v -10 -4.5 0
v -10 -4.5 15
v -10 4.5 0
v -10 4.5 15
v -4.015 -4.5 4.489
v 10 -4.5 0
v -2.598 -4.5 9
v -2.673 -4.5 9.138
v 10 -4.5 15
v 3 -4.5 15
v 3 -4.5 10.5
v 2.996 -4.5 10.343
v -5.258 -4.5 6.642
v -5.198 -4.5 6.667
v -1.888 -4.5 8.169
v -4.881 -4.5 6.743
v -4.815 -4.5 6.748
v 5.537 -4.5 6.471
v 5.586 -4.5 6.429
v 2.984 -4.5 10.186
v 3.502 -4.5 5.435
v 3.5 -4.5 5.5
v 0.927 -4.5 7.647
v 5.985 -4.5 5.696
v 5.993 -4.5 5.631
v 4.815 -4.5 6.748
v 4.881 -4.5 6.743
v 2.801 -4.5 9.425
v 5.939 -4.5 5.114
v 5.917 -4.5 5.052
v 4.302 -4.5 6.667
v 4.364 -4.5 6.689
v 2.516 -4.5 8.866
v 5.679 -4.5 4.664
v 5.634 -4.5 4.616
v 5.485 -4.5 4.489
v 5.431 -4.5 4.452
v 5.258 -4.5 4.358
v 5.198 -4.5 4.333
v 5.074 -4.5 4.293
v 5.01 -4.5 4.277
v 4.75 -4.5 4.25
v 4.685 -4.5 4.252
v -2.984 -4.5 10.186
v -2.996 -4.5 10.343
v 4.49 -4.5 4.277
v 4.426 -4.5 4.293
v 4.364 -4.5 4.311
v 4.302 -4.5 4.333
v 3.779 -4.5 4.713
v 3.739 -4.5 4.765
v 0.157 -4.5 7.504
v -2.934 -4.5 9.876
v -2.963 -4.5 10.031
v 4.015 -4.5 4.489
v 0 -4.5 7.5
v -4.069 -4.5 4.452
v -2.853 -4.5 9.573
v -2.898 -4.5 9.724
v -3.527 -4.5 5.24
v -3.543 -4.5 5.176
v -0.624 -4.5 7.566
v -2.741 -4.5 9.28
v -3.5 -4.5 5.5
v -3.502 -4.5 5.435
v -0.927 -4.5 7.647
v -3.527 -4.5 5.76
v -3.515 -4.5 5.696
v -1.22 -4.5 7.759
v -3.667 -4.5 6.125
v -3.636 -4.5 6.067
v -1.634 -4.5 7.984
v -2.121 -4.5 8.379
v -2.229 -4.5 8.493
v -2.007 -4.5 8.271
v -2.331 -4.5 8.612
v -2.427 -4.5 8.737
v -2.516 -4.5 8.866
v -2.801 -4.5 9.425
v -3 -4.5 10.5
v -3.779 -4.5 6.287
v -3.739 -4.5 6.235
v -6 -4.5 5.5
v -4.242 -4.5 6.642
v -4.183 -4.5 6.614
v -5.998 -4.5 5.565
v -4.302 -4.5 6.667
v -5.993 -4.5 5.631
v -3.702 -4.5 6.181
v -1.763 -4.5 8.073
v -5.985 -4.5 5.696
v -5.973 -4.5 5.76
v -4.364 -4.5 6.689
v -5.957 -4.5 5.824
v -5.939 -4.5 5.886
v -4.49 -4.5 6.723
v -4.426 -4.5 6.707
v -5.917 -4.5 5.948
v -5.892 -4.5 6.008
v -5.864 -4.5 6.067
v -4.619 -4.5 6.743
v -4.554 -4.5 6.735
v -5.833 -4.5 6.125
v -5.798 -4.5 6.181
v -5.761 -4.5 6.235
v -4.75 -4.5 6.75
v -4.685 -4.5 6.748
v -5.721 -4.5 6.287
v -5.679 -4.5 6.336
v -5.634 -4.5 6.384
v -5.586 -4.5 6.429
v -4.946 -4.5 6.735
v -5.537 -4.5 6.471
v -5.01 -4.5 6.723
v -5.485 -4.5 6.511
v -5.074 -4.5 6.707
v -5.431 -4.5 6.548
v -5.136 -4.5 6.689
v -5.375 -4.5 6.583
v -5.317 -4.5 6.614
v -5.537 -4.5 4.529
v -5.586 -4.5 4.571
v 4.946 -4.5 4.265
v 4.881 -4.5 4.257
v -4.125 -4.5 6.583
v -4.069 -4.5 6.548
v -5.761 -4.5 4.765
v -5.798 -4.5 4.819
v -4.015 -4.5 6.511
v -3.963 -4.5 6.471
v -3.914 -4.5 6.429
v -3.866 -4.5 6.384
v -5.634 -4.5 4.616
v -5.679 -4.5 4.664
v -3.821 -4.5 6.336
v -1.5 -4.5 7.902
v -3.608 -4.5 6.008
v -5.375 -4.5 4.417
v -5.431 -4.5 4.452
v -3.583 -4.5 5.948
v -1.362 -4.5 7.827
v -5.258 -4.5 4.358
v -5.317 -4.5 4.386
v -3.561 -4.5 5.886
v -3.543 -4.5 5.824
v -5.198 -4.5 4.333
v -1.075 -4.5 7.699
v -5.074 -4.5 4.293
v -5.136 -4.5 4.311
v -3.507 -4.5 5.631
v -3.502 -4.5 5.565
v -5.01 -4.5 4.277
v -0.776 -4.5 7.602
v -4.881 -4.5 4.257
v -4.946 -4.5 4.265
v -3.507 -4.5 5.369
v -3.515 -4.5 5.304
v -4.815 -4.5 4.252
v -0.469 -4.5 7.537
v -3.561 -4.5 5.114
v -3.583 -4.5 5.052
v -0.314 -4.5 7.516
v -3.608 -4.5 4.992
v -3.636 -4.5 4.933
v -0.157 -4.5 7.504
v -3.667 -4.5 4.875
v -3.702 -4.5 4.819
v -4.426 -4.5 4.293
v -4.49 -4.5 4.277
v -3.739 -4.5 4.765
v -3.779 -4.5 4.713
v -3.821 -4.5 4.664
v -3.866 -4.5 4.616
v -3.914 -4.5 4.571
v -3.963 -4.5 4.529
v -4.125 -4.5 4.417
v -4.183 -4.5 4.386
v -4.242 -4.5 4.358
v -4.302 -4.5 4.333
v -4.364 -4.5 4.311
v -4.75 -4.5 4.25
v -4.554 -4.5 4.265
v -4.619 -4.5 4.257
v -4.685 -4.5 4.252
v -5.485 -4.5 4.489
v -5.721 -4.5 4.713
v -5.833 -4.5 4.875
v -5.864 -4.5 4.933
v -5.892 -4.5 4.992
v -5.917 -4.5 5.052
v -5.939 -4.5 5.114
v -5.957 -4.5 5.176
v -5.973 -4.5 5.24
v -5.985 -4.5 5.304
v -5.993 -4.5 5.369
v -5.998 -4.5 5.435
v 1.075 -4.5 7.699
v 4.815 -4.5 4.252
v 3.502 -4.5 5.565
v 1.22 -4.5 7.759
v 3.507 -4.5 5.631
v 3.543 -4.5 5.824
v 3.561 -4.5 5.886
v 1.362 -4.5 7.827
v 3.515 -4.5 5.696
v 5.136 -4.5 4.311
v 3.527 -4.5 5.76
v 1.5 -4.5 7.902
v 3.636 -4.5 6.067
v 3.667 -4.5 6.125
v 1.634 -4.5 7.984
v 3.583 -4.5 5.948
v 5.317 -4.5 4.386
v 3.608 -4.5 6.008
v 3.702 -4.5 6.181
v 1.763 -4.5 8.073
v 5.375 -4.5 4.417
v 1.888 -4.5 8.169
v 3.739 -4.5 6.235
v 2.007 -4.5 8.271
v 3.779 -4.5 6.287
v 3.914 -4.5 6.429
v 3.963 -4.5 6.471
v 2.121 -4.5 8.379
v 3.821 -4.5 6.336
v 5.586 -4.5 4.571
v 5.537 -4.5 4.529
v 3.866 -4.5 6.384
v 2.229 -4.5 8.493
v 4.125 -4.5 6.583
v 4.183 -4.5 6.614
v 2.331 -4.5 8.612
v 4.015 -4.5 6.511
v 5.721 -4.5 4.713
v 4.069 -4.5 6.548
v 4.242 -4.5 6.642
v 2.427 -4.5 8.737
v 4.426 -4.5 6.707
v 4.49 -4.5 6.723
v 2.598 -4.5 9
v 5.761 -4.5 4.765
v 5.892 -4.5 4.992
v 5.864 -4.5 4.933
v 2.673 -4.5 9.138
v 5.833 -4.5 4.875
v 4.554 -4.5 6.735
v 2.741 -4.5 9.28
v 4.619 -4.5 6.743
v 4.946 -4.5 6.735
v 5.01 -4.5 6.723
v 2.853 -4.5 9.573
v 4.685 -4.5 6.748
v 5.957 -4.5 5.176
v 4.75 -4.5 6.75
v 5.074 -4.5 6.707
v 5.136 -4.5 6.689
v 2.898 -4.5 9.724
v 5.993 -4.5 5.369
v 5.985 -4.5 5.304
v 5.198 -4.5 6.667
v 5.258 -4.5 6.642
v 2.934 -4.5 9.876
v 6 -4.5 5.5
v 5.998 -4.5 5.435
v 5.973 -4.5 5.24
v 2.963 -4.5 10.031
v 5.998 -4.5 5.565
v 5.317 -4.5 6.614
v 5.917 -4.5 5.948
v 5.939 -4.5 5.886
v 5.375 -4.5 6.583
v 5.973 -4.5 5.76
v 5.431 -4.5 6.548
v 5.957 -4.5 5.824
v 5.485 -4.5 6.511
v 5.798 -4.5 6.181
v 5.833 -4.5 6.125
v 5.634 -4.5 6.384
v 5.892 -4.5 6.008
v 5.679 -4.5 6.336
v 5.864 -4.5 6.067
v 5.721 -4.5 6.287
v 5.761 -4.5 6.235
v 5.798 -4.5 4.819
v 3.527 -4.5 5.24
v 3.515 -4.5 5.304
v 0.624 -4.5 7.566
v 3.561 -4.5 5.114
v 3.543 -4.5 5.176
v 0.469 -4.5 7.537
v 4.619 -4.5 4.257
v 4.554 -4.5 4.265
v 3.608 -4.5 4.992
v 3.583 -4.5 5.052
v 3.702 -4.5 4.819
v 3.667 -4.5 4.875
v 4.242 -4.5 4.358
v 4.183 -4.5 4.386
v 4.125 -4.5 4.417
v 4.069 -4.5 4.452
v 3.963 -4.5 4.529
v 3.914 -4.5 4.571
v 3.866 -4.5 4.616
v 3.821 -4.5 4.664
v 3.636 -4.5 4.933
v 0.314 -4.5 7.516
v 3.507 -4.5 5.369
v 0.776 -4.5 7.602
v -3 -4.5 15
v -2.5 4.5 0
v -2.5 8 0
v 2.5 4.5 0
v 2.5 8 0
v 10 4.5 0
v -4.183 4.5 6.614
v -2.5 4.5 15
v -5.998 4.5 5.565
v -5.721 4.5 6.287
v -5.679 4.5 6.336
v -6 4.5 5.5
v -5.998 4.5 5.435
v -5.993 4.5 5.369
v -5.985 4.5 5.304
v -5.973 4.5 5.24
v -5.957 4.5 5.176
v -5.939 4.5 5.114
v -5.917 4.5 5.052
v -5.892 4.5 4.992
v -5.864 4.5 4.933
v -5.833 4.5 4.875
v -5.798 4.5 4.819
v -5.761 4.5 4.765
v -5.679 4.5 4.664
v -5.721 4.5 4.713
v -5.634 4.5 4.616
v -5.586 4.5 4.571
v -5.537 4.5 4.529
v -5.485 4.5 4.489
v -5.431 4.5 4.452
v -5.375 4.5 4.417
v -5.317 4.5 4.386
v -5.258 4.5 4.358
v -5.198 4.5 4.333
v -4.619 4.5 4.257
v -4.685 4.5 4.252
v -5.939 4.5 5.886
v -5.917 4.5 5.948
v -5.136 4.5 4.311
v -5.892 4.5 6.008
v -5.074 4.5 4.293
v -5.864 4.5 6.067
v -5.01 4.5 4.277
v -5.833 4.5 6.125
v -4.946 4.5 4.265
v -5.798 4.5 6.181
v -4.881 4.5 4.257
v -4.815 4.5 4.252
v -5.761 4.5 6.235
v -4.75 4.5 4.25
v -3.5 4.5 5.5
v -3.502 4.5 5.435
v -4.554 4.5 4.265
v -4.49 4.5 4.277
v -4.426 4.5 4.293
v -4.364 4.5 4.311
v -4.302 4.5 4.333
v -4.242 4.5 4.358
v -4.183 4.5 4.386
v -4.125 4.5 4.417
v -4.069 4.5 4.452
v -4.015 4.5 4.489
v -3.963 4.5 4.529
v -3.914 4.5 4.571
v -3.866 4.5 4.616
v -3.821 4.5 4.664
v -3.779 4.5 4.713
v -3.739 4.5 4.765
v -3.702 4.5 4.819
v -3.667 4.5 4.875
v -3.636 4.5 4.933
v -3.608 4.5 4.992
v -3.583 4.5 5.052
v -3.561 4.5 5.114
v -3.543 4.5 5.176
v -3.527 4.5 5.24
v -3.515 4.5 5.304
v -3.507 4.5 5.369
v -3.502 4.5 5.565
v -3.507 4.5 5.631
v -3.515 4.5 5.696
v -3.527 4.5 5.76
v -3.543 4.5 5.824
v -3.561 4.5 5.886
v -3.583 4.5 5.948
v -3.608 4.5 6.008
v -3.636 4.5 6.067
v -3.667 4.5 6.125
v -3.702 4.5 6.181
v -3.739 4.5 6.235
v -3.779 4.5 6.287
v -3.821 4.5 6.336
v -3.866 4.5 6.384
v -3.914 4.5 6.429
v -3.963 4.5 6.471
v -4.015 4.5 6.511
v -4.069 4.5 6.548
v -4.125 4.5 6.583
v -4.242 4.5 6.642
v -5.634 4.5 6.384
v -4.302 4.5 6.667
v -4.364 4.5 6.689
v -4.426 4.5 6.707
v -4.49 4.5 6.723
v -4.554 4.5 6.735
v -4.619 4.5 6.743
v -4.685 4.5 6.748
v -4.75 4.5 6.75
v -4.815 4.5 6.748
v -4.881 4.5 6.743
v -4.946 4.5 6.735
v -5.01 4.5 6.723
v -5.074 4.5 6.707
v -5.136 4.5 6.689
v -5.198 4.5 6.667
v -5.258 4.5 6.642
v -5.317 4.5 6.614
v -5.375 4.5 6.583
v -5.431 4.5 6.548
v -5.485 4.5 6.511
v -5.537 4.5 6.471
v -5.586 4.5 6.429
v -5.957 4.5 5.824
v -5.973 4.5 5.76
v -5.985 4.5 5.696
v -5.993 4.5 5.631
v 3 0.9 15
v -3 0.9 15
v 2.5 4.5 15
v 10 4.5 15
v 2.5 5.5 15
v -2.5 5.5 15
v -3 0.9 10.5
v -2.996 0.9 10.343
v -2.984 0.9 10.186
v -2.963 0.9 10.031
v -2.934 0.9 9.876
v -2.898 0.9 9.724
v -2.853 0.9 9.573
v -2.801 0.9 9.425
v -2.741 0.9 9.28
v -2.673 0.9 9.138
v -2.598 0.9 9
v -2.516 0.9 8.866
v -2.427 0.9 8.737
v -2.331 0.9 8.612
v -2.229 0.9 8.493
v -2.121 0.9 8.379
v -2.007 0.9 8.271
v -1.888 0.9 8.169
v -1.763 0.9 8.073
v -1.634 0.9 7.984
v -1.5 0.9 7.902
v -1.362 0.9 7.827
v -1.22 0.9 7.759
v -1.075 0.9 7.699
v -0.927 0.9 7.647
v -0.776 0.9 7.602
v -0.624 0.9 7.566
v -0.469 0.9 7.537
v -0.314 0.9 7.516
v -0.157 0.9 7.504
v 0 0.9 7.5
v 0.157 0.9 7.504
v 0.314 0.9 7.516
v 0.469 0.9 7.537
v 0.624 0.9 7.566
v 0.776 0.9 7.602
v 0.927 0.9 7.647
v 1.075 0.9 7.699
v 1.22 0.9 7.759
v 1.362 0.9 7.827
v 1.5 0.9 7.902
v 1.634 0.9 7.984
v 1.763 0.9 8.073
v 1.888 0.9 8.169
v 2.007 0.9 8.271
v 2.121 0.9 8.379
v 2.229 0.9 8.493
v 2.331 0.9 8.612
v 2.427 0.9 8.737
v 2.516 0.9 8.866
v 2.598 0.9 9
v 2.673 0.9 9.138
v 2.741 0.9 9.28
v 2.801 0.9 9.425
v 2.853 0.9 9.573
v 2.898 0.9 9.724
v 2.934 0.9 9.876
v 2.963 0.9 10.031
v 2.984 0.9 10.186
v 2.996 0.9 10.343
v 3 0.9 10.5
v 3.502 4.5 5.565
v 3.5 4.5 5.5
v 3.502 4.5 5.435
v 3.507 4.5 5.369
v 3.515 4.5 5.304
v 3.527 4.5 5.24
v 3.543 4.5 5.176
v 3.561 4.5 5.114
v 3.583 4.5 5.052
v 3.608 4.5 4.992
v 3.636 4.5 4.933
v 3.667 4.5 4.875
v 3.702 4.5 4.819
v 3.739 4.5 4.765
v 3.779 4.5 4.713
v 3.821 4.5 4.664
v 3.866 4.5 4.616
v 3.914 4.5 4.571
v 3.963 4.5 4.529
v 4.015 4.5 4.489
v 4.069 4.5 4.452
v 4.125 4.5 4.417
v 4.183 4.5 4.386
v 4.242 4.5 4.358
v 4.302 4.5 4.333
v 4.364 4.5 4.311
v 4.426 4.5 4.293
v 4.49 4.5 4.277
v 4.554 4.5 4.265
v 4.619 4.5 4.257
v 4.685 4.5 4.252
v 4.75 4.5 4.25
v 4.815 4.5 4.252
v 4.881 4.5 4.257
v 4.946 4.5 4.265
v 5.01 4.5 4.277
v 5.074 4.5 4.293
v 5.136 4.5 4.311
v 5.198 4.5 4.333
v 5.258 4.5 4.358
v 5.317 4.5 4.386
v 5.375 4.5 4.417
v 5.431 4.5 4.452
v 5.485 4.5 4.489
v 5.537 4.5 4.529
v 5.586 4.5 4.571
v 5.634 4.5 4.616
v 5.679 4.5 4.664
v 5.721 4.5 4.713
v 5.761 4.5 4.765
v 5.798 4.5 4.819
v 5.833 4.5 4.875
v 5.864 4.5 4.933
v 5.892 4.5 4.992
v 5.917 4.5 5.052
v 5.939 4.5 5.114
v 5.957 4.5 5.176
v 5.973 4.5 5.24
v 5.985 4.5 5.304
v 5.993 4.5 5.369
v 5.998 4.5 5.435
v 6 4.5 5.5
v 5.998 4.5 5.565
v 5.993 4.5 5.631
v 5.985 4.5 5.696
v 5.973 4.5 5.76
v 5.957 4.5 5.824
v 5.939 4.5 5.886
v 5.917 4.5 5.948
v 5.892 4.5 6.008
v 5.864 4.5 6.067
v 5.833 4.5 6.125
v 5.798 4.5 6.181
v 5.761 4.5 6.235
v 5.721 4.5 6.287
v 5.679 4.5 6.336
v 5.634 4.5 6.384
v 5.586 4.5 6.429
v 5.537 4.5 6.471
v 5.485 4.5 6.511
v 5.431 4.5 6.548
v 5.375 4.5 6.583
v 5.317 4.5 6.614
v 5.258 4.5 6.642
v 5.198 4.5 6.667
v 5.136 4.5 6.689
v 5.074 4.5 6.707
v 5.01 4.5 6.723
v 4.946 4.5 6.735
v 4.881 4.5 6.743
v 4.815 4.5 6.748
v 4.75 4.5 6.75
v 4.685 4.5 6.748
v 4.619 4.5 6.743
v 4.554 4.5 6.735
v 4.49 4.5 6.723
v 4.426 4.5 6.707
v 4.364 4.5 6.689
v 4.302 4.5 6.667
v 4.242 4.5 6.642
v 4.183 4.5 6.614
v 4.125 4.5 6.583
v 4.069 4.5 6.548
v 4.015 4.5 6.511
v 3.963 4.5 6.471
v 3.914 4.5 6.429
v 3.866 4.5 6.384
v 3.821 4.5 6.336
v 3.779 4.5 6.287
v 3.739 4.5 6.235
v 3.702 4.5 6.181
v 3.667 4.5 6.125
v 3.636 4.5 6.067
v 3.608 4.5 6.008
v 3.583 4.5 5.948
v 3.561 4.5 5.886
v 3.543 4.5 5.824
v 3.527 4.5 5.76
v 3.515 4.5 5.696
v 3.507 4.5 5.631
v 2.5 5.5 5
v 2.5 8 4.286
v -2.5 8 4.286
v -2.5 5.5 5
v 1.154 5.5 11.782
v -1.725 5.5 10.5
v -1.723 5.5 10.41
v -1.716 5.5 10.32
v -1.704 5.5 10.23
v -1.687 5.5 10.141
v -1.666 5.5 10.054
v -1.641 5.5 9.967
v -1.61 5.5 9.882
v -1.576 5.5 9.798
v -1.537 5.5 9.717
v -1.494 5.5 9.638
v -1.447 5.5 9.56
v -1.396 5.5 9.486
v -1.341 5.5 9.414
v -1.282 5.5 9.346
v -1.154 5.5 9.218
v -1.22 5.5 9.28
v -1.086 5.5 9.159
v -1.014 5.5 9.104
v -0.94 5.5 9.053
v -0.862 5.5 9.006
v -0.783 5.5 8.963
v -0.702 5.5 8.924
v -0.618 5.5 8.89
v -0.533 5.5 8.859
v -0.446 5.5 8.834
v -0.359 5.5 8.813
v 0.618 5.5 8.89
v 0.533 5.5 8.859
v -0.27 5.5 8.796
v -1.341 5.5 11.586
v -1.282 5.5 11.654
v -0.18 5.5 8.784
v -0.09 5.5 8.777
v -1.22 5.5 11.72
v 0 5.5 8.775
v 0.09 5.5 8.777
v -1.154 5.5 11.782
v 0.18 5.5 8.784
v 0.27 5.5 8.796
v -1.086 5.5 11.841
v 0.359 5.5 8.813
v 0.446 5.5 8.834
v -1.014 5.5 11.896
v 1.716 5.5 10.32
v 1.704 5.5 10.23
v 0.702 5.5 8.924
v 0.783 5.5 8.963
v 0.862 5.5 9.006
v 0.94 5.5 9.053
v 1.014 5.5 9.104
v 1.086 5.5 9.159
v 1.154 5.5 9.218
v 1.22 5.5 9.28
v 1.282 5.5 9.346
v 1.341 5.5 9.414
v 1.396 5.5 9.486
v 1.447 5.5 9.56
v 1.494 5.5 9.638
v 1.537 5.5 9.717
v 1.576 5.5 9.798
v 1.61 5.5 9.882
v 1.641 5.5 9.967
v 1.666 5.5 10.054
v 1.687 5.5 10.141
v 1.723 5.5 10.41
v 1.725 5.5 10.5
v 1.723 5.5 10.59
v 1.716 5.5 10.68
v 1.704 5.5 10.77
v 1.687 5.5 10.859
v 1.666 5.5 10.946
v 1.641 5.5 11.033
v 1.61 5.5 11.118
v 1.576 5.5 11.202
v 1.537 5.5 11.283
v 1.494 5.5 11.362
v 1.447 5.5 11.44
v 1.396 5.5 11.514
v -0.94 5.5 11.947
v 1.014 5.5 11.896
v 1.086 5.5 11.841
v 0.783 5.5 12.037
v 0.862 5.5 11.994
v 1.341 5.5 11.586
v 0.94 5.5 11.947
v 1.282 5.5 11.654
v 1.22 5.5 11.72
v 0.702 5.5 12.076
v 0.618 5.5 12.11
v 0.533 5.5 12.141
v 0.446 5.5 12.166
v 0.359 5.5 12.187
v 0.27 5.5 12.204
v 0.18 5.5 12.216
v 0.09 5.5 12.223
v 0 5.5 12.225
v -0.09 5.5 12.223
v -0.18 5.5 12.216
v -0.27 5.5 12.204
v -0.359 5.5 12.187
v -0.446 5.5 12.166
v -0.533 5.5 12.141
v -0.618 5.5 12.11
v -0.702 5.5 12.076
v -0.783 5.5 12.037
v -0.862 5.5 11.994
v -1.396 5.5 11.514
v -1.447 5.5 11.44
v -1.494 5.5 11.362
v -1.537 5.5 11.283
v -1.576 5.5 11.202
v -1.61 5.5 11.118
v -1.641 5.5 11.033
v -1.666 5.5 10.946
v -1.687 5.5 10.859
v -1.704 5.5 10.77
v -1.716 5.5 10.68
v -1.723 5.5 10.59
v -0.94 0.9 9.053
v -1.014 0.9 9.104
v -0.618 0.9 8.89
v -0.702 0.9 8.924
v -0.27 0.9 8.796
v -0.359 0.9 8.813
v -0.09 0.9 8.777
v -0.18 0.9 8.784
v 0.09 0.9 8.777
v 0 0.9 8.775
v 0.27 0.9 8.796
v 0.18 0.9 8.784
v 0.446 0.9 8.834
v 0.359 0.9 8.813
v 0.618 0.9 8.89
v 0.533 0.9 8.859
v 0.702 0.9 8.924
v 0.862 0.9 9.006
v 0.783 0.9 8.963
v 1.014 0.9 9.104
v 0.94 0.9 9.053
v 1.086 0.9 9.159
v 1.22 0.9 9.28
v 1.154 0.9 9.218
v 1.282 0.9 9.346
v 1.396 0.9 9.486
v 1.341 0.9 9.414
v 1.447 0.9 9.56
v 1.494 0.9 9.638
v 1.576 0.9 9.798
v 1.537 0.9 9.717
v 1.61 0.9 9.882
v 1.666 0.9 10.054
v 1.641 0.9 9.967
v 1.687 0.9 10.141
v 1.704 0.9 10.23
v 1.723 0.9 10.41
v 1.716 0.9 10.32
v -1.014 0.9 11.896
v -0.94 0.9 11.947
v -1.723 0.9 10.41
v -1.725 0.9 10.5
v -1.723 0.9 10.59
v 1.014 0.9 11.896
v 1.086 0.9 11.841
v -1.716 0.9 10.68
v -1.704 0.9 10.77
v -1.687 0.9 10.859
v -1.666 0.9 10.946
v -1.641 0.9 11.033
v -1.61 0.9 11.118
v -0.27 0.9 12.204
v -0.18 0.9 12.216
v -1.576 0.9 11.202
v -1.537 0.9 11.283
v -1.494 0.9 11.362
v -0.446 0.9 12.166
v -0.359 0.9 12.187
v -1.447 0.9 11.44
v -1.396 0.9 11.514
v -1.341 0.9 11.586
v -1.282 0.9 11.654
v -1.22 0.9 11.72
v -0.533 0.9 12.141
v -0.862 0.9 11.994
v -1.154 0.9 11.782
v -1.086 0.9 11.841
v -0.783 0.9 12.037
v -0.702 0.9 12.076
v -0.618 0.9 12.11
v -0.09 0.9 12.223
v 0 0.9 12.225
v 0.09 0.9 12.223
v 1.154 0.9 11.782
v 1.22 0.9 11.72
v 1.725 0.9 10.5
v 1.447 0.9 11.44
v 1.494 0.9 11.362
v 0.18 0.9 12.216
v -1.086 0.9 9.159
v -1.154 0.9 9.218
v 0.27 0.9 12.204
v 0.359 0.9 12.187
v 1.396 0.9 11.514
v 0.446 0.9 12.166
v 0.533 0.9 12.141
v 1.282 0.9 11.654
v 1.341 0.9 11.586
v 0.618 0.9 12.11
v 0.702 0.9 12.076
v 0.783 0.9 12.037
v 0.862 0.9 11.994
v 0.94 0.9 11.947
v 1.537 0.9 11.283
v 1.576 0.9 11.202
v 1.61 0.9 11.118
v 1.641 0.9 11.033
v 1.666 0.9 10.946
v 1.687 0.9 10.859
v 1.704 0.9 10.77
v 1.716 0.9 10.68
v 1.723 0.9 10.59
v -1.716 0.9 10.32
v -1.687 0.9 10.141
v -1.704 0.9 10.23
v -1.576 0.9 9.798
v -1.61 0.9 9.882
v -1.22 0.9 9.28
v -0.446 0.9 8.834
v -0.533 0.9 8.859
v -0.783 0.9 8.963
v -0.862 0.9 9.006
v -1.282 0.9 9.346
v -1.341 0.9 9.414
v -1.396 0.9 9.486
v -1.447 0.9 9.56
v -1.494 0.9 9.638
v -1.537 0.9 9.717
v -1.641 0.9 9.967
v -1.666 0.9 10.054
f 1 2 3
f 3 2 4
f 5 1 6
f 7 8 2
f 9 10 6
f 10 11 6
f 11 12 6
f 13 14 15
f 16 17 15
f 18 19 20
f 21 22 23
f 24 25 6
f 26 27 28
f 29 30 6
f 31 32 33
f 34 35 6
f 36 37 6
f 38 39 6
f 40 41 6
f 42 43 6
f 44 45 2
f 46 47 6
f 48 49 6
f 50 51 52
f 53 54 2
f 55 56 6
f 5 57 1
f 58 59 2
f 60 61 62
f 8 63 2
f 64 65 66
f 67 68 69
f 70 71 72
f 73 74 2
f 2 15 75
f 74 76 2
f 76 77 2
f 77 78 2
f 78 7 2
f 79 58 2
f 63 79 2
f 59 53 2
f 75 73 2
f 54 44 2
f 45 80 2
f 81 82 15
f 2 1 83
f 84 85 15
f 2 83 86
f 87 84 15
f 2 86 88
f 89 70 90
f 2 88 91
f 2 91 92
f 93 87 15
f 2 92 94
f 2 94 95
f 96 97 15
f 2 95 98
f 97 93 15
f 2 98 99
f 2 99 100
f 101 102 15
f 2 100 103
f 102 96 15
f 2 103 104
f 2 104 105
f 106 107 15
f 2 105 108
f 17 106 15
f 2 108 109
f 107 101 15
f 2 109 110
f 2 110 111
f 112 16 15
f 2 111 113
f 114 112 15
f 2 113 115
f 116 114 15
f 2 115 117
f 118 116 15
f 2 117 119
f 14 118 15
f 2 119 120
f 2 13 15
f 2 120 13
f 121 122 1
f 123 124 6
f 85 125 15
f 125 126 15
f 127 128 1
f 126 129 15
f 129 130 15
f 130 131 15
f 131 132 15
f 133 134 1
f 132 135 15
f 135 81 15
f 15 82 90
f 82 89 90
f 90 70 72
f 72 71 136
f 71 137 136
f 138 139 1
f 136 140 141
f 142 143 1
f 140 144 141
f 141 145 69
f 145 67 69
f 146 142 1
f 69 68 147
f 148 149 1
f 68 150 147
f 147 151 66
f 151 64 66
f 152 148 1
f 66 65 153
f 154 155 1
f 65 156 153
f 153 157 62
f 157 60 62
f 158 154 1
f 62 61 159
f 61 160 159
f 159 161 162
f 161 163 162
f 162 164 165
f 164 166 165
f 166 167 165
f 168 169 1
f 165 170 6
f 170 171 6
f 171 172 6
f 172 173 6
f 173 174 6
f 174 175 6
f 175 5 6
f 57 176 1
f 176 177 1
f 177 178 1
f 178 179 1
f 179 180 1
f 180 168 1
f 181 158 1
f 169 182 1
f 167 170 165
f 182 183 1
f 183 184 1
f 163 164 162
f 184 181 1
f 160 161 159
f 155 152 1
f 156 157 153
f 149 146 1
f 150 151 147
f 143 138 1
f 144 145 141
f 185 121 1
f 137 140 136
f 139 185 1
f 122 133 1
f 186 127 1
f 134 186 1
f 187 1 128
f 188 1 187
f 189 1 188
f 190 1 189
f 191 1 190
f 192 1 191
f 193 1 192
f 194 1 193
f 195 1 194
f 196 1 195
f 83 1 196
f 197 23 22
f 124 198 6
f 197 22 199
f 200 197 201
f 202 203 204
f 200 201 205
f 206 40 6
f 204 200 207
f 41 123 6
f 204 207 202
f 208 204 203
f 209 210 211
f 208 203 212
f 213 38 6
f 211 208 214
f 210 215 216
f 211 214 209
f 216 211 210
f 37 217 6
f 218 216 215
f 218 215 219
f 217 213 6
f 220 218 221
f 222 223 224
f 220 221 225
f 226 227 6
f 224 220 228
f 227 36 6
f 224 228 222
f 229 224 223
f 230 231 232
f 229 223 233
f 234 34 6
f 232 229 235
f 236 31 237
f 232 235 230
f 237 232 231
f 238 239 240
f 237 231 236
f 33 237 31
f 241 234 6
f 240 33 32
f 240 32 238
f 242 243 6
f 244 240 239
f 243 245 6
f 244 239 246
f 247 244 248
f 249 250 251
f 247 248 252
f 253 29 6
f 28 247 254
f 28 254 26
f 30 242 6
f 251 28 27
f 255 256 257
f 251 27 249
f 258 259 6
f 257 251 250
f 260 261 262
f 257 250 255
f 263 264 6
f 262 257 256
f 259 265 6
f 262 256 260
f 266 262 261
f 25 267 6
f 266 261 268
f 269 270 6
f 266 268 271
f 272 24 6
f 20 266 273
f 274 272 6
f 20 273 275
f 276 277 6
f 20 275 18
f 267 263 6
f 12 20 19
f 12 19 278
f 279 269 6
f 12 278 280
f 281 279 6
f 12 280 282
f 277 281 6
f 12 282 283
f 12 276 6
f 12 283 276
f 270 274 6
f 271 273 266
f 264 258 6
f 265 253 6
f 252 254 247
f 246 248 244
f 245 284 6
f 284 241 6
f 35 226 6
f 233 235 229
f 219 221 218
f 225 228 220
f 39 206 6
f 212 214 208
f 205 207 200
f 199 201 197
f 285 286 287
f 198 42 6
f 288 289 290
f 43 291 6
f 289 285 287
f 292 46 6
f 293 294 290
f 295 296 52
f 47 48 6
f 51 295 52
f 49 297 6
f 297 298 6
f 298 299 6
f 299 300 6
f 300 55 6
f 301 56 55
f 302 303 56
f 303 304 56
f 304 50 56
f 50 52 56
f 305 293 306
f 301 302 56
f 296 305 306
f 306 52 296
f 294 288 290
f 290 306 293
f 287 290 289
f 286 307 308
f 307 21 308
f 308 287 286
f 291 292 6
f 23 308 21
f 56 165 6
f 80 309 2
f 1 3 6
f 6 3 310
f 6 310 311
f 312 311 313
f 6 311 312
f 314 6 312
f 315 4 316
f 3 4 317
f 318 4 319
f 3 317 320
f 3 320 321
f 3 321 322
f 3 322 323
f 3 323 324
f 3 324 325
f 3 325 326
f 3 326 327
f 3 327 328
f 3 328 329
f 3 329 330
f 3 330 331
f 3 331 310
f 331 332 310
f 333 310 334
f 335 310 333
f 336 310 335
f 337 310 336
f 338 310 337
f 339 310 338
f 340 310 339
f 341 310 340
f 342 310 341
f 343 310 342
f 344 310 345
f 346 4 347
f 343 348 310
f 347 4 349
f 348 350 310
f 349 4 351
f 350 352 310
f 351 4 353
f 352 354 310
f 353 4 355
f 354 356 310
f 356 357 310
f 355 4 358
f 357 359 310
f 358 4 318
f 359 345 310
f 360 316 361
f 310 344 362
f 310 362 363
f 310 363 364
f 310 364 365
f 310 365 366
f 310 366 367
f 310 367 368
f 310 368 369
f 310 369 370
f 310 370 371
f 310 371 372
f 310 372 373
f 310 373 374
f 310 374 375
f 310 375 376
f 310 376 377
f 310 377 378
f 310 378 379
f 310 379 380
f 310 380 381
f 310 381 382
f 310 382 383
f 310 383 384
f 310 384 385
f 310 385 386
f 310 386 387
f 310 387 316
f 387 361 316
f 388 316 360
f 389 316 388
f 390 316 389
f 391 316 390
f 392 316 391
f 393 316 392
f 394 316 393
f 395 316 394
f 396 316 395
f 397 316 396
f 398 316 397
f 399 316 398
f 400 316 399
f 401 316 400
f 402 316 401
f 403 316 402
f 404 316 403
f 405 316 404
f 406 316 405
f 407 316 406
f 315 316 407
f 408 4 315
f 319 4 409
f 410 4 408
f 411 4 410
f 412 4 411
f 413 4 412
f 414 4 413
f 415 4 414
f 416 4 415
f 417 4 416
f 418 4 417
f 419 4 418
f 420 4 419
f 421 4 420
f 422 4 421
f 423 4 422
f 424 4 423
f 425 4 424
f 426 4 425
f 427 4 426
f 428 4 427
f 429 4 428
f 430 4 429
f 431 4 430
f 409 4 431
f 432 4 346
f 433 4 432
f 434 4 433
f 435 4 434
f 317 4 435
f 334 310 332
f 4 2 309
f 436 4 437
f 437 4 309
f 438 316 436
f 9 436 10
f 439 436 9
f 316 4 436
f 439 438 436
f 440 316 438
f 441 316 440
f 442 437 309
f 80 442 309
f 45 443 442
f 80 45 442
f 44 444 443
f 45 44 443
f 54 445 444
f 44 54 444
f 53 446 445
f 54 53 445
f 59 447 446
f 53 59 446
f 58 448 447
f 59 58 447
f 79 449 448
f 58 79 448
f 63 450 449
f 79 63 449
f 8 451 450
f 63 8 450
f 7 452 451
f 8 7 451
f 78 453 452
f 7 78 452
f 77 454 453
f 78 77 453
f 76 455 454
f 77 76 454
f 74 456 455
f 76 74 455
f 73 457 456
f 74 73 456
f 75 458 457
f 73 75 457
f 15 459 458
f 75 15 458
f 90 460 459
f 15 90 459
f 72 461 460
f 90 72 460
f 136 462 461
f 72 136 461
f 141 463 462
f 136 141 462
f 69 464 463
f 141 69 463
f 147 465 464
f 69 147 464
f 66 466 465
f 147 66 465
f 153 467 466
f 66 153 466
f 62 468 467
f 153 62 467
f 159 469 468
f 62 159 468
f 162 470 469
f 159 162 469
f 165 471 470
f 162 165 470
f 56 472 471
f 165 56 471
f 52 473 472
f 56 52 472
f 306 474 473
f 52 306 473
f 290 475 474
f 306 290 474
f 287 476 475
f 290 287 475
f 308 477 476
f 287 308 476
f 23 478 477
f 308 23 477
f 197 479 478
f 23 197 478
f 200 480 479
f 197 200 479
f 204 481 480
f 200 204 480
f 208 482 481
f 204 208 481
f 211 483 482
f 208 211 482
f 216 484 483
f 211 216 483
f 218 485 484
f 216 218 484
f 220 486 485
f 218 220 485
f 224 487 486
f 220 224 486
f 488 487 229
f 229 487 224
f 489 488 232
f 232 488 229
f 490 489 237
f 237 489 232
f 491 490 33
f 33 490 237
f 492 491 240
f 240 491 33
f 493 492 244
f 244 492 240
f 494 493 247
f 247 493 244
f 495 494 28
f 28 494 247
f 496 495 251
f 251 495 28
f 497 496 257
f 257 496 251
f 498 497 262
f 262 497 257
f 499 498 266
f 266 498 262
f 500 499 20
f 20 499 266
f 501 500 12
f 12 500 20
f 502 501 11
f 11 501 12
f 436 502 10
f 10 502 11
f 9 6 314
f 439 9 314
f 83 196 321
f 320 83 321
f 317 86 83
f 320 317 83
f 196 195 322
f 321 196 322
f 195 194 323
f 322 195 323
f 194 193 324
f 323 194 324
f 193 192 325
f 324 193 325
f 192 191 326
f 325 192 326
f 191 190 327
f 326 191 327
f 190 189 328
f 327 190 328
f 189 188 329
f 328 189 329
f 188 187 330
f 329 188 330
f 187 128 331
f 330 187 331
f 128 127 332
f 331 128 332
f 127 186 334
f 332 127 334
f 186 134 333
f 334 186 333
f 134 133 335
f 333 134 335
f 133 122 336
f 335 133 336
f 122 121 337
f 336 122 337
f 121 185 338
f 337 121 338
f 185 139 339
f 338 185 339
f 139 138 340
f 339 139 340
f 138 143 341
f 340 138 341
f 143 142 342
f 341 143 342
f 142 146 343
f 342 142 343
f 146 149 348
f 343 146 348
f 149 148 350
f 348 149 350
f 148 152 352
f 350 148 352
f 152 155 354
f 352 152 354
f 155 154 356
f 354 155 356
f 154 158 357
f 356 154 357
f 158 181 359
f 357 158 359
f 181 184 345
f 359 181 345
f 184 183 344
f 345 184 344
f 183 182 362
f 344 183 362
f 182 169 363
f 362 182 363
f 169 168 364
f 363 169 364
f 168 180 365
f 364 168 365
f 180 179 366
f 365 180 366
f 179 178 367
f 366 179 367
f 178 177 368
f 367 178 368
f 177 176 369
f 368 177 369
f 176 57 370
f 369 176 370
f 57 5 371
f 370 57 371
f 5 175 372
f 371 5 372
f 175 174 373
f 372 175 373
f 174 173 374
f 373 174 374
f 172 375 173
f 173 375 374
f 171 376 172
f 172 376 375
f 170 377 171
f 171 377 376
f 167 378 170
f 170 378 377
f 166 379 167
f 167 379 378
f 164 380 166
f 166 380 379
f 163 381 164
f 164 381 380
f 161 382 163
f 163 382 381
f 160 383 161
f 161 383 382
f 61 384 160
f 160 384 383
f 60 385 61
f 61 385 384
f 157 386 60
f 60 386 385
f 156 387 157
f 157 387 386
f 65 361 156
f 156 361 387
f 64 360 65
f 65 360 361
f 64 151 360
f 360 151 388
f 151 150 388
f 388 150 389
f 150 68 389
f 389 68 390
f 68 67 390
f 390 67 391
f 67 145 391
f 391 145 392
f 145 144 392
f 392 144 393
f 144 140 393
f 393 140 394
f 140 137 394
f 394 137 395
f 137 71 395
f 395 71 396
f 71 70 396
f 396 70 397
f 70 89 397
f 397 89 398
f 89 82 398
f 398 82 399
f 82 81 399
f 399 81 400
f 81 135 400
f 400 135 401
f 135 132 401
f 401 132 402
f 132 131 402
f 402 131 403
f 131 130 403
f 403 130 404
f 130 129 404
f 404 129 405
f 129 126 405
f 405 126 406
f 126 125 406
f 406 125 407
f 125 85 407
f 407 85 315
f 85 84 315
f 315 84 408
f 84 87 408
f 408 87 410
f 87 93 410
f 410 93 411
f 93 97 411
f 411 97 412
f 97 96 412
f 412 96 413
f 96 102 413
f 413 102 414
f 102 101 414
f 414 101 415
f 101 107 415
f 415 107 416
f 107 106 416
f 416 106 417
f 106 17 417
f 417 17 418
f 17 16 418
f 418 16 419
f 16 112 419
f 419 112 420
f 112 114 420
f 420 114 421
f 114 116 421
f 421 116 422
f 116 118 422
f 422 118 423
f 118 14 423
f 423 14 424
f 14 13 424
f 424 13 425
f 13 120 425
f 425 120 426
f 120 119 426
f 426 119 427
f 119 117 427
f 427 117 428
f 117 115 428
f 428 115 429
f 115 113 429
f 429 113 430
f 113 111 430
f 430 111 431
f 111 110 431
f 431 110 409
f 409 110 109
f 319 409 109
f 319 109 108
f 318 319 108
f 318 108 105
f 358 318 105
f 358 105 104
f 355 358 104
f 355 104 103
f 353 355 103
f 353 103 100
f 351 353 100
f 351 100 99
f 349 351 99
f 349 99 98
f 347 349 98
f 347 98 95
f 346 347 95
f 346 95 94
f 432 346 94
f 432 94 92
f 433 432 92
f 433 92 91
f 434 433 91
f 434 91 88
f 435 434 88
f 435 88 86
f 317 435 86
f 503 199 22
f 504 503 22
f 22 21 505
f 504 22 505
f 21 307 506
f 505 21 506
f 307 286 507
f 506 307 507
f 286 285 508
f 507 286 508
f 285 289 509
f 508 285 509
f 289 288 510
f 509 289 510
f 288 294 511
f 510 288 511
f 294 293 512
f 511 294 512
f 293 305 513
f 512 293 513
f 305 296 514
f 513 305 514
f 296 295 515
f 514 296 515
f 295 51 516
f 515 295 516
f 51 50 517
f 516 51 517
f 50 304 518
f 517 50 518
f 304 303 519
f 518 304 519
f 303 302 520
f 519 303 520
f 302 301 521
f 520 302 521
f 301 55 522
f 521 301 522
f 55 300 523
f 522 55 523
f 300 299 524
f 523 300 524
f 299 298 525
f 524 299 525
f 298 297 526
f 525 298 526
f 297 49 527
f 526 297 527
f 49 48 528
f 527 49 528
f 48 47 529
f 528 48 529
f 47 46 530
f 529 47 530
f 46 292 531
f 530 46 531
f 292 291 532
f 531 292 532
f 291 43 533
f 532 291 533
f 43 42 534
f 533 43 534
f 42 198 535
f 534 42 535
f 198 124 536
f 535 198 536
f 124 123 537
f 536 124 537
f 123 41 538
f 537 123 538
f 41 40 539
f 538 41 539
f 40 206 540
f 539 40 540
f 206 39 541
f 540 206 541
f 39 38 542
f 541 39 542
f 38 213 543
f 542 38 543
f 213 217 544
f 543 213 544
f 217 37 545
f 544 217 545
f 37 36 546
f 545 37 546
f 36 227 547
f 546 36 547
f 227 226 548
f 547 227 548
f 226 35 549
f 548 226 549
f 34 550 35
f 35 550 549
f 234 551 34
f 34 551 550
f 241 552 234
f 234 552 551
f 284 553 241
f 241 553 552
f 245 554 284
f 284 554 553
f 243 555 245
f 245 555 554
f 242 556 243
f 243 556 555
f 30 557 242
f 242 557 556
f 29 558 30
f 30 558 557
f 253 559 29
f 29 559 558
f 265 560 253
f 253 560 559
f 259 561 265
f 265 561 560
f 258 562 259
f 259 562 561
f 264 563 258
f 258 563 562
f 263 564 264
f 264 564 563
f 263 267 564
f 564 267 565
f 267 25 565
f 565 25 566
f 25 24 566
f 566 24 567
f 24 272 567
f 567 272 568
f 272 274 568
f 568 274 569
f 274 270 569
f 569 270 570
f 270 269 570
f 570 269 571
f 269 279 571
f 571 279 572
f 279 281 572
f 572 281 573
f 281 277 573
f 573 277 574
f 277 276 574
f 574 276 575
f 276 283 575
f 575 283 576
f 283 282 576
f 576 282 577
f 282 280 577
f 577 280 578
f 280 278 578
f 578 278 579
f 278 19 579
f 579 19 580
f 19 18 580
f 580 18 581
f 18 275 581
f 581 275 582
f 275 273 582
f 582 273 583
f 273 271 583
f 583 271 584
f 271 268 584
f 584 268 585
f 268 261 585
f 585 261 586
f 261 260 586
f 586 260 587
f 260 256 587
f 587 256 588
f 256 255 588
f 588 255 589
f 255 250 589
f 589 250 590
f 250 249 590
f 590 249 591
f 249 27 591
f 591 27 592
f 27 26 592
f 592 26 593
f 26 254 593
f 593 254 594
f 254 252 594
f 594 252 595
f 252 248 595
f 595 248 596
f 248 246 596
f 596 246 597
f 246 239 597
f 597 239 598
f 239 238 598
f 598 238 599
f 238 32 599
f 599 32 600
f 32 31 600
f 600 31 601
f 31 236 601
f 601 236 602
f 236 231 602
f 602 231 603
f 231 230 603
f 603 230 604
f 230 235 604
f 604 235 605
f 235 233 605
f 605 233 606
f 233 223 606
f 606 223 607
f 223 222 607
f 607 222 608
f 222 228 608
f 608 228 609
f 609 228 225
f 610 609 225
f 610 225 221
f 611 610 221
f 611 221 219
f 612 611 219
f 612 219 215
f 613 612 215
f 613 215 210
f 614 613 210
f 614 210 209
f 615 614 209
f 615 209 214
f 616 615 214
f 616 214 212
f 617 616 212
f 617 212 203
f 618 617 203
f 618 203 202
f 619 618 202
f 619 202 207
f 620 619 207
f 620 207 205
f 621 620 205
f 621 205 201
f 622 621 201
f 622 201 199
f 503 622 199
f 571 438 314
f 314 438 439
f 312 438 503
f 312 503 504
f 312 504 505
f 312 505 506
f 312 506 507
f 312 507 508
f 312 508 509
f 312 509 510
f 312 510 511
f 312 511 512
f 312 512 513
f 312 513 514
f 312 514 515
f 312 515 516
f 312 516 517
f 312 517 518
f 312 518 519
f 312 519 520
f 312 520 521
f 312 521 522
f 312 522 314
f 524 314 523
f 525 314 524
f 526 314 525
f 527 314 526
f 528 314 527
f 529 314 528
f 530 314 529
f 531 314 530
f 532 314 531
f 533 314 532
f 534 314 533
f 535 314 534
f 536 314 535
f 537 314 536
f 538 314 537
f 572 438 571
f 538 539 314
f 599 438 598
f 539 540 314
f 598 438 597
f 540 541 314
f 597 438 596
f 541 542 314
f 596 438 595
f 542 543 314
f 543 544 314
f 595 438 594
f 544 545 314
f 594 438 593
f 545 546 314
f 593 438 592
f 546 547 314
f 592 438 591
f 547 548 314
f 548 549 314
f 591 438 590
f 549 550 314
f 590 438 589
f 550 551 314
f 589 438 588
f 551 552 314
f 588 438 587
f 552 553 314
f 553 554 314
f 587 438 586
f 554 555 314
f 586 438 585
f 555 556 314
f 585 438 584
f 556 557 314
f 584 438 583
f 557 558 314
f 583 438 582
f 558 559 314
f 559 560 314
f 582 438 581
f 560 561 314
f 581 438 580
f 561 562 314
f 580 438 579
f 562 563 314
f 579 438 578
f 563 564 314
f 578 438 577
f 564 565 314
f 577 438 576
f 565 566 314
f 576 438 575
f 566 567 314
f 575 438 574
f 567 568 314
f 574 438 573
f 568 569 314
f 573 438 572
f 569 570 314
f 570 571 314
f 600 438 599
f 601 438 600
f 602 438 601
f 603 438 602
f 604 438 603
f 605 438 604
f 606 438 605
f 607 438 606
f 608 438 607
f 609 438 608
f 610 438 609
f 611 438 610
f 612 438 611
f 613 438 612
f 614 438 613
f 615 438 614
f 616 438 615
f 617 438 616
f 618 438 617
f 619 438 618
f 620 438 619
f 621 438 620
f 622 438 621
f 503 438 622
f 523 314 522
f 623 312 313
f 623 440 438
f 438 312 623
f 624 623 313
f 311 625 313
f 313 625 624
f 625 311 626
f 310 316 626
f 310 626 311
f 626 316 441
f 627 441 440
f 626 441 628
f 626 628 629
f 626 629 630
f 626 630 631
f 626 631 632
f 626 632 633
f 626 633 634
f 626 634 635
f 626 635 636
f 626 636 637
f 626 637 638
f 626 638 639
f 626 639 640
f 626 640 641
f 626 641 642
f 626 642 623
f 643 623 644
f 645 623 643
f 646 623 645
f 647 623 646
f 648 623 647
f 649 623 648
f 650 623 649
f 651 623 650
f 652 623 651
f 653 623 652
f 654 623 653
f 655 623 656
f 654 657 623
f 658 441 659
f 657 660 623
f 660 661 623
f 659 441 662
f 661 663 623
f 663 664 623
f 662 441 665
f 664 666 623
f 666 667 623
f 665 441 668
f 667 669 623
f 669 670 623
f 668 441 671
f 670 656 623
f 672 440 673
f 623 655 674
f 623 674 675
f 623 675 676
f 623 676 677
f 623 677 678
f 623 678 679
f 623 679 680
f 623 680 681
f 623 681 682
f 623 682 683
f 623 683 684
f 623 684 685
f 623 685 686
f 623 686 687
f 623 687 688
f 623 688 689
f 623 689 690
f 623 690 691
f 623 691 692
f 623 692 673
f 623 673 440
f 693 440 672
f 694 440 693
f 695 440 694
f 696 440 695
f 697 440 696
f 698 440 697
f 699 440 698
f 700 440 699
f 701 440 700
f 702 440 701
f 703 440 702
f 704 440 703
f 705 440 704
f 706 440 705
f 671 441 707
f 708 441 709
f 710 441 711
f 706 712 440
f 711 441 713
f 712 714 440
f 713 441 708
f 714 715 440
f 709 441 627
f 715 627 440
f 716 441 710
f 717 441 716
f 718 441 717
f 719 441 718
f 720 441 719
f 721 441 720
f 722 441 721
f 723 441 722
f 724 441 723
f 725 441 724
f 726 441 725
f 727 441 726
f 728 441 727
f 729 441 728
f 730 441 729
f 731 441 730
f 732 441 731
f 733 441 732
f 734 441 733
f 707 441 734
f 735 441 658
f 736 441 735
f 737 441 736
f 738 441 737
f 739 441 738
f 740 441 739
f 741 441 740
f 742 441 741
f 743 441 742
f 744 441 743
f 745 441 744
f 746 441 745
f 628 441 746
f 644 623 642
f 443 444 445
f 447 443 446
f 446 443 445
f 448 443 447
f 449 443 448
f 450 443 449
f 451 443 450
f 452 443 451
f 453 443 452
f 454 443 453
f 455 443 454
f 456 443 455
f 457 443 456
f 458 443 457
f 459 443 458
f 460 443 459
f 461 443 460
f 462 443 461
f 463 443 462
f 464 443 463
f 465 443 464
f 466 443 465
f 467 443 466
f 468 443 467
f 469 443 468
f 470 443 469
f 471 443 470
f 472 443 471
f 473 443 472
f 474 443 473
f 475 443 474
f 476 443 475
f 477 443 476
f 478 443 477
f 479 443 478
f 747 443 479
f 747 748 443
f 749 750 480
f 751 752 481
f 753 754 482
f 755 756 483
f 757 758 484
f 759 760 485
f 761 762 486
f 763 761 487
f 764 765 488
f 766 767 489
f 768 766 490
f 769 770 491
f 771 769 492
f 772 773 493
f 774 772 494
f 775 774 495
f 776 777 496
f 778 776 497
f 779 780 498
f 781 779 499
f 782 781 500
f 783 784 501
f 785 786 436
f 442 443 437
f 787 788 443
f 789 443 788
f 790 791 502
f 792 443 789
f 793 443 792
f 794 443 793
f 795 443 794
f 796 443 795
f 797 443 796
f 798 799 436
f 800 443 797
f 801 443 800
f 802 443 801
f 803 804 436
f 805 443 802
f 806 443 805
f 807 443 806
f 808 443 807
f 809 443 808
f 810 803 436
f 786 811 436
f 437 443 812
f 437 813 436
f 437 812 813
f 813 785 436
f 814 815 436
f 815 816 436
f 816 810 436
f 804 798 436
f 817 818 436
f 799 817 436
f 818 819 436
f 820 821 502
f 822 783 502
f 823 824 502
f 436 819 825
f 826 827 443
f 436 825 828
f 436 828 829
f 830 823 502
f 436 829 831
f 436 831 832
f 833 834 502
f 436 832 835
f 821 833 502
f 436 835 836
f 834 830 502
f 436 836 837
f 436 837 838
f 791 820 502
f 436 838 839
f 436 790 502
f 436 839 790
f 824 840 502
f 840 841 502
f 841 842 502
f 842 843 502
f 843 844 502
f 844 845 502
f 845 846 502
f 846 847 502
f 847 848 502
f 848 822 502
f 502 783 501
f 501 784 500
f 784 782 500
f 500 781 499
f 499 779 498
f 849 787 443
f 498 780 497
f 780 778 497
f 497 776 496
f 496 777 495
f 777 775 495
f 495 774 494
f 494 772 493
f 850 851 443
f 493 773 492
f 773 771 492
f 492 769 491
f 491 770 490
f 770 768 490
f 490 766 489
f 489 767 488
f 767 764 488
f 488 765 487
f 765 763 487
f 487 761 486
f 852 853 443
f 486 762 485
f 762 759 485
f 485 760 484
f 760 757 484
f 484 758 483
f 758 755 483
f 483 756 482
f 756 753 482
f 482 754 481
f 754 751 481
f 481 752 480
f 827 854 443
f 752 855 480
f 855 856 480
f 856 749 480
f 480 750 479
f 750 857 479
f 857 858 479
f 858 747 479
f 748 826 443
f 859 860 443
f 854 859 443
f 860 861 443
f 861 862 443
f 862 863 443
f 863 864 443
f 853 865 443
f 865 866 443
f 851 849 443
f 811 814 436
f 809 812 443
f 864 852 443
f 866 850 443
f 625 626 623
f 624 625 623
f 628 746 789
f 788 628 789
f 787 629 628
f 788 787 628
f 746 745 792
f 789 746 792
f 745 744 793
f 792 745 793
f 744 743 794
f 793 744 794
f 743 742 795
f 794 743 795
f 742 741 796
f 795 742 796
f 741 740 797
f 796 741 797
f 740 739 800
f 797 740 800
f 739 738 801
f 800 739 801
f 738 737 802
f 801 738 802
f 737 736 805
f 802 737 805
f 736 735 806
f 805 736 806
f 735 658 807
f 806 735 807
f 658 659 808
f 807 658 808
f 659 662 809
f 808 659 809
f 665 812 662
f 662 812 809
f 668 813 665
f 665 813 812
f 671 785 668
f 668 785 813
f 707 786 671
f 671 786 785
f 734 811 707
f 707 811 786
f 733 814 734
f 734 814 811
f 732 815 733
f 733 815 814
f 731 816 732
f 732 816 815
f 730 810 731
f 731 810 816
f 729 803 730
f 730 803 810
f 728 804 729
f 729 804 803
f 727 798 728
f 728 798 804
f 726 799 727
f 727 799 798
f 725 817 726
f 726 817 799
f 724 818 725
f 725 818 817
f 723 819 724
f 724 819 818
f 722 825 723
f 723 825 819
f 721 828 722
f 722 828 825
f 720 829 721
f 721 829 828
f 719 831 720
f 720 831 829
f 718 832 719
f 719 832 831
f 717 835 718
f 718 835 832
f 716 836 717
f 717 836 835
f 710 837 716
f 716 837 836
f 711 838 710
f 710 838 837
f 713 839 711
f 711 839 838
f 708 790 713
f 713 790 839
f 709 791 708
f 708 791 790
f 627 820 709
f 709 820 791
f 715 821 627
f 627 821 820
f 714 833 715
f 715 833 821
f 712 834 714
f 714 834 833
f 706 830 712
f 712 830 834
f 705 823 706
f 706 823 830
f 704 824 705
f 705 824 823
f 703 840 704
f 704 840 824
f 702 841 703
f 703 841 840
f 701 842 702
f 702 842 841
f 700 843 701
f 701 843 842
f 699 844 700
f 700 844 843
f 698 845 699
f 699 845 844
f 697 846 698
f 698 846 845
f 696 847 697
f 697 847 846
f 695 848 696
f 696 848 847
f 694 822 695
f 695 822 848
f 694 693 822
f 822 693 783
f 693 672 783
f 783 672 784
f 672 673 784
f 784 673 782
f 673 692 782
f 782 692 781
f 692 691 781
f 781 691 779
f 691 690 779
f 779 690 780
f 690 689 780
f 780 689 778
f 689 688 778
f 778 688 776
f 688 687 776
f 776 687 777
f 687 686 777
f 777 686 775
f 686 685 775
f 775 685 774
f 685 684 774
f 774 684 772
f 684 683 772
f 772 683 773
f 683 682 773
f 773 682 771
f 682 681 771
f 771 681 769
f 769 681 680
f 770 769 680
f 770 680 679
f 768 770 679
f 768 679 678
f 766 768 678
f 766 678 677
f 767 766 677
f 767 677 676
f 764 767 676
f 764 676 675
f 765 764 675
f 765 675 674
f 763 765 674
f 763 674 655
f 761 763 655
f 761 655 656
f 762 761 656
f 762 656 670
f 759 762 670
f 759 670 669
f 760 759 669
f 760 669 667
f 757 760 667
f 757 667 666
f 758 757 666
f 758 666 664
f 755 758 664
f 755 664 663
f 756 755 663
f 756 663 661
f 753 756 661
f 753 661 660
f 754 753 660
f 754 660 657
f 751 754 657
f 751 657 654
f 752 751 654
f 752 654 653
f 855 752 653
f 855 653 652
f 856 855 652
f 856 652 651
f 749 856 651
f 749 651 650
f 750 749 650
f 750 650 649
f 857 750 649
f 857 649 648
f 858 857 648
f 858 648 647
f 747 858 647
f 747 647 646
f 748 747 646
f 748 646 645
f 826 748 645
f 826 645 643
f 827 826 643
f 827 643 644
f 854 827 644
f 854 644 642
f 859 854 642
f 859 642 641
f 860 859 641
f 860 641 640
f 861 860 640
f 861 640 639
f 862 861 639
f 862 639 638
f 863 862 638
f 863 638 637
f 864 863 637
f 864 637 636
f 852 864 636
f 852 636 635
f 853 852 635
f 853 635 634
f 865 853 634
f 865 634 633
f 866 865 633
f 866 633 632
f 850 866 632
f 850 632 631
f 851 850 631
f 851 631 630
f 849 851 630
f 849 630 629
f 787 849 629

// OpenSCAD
// file: microswitch.scad
/**
 * @author Johann Rocholl <johann@rocholl.net>
 * @license GPL-3.0
 */

// Don't print this file, purchase real micro switches
// e.g. Honeywell ZM10B10A01 or OMRON SS-5 or similar.

module microswitch() {
  difference() {
    union() {
      translate([0, 0, 2.5])
        cube([19.8, 6, 10], center=true);
      translate([2.5, 0.5, 6])
        cube([2, 3.5, 5], center=true);
      for (x = [-8, -1, 8]) {
        translate([x, 0, 0])
          cube([0.6, 3.2, 13], center=true);
      }
    }
    for (x = [-9.5/2, 9.5/2]) {
      translate([x, 0, 0]) rotate([90, 0, 0])
        cylinder(r=2.5/2, h=20, center=true, $fn=12);
    }
  }
}

microswitch();
// file: configuration.scad
// Increase this if your slicer or printer make holes too tight.
extra_radius = 0.1;

// OD = outside diameter, corner to corner.
m3_nut_od = 6.1; //6.1 for 1515
m3_nut_radius = m3_nut_od/2 + 0.2 + extra_radius;
m3_washer_radius = 3.5 + extra_radius;


// Major diameter of metric 3mm thread.
m3_major = 2.85;
m3_radius = m3_major/2 + extra_radius;
m3_wide_radius = m3_major/2 + extra_radius + 0.2;

// NEMA17 stepper motors.
motor_shaft_diameter = 5;
motor_shaft_radius = motor_shaft_diameter/2 + extra_radius;

// Frame brackets. M3x8mm screws work best with 3.6 mm brackets.
thickness = 3.6;

// OpenBeam or Misumi. Currently only 15x15 mm, but there is a plan
// to make models more parametric and allow 20x20 mm in the future.
extrusion = 20;
extrusion_channel_w = 5; //use 3 for 1515
extrusion_channel_d = 3; //use 3 for 1515
extrusion_fin_d = 1;

vertex_offset=27;
vertex_radius = 40.5; //set to 36 for 1515


// Placement for the NEMA17 stepper motors.
motor_offset = 44;
motor_length = 47;
// main file
include <configuration.scad>;

use <microswitch.scad>;

thickness = 9;  // 1mm thicker than linear rail.
width = extrusion;  // Same as vertical extrusion.
height = 15;
fin_w=5;
$fn=120;
layer_height = 0.2;
//left=-1; right=1;
side = -1;


module screw_socket_cone() {
 union() {
  scale([1, 1, -1]) rotate(45)cylinder(r1=11/2*sqrt(2), r2=extrusion/2, h=5.5, $fn=4);
 }
}

module endstop(offset=thickness/2,neg=1) {
  difference() {
    union() {
      cube([width, thickness, height], center=true);
      //translate([0, 0, -height/4])cube([width+2, thickness, height/2], center=true);
     // translate([neg*(-(width+2+thickness-2)/2), 0, -height/4])cylinder(h=height/2, r=thickness/2, center=true);
      translate([0, 3.5, 0]) cube([fin_w, thickness, height], center=true);
      
     // translate([width/2-offset, width/2+2, -height/4]) rotate(90) cube([width+thickness-thickness/2, thickness, height/2], center=true);
	}
    //cutout screw adjustment hole
    //translate([neg*(-(width+2+thickness-2)/2), 0, -height/4]) cylinder(h=height, r=m3_wide_radius, center=true);
    //translate([neg*(-(width+2+thickness-2)/2), 0, height/4 - 2.3]) 
    //translate([width/2+neg*offset, (thickness+width)/2, -height/4])  cylinder(h=height, r=m3_wide_radius, center=true);
   // translate([width/2+neg*offset, (thickness+width)/2, -height/4+ 2.3])rotate(30) cylinder(h=height/2, r=m3_nut_radius, center=true, $fn=6);
	
    
    translate([0, 0, 3]) rotate([90, 0, 0]) {
      cylinder(r=m3_wide_radius, h=20, center=true);
      translate([0, 0, 3.6-thickness/2]) {
        cylinder(r=3, h=10);
        translate([0, 5, 5])
          cube([6, 10, 10], center=true);
      }
      #translate([0, 0, -thickness/2-1]) scale([1, 1, 1])screw_socket_cone();
      //   cylinder(r1=m3_wide_radius, r2=7, h=4);
    }
    translate([0, -3-thickness/2, -2]) rotate([0, 180, 0]) {
      //% microswitch();
      for (x = [-9.5/2, 9.5/2]) {
        translate([x, 0, 0]) rotate([90, 0, 0])
          cylinder(r=2.5/2, h=40, center=true);
      }
    }  }

}


translate([0,extrusion/2+thickness/2,0]) %cube([extrusion,extrusion,40],center=true);
//translate([0, 0, height/2]) endstop(-thickness/2,side);
translate([0, 0, height/2]) endstop(2,1);
%rotate([180,0,0])
//translate([side*(width-3), -(7.5+thickness/2), height/2+5]) 
translate([0,-(width+thickness), height/2+5])

endstop(-thickness/2,side);
